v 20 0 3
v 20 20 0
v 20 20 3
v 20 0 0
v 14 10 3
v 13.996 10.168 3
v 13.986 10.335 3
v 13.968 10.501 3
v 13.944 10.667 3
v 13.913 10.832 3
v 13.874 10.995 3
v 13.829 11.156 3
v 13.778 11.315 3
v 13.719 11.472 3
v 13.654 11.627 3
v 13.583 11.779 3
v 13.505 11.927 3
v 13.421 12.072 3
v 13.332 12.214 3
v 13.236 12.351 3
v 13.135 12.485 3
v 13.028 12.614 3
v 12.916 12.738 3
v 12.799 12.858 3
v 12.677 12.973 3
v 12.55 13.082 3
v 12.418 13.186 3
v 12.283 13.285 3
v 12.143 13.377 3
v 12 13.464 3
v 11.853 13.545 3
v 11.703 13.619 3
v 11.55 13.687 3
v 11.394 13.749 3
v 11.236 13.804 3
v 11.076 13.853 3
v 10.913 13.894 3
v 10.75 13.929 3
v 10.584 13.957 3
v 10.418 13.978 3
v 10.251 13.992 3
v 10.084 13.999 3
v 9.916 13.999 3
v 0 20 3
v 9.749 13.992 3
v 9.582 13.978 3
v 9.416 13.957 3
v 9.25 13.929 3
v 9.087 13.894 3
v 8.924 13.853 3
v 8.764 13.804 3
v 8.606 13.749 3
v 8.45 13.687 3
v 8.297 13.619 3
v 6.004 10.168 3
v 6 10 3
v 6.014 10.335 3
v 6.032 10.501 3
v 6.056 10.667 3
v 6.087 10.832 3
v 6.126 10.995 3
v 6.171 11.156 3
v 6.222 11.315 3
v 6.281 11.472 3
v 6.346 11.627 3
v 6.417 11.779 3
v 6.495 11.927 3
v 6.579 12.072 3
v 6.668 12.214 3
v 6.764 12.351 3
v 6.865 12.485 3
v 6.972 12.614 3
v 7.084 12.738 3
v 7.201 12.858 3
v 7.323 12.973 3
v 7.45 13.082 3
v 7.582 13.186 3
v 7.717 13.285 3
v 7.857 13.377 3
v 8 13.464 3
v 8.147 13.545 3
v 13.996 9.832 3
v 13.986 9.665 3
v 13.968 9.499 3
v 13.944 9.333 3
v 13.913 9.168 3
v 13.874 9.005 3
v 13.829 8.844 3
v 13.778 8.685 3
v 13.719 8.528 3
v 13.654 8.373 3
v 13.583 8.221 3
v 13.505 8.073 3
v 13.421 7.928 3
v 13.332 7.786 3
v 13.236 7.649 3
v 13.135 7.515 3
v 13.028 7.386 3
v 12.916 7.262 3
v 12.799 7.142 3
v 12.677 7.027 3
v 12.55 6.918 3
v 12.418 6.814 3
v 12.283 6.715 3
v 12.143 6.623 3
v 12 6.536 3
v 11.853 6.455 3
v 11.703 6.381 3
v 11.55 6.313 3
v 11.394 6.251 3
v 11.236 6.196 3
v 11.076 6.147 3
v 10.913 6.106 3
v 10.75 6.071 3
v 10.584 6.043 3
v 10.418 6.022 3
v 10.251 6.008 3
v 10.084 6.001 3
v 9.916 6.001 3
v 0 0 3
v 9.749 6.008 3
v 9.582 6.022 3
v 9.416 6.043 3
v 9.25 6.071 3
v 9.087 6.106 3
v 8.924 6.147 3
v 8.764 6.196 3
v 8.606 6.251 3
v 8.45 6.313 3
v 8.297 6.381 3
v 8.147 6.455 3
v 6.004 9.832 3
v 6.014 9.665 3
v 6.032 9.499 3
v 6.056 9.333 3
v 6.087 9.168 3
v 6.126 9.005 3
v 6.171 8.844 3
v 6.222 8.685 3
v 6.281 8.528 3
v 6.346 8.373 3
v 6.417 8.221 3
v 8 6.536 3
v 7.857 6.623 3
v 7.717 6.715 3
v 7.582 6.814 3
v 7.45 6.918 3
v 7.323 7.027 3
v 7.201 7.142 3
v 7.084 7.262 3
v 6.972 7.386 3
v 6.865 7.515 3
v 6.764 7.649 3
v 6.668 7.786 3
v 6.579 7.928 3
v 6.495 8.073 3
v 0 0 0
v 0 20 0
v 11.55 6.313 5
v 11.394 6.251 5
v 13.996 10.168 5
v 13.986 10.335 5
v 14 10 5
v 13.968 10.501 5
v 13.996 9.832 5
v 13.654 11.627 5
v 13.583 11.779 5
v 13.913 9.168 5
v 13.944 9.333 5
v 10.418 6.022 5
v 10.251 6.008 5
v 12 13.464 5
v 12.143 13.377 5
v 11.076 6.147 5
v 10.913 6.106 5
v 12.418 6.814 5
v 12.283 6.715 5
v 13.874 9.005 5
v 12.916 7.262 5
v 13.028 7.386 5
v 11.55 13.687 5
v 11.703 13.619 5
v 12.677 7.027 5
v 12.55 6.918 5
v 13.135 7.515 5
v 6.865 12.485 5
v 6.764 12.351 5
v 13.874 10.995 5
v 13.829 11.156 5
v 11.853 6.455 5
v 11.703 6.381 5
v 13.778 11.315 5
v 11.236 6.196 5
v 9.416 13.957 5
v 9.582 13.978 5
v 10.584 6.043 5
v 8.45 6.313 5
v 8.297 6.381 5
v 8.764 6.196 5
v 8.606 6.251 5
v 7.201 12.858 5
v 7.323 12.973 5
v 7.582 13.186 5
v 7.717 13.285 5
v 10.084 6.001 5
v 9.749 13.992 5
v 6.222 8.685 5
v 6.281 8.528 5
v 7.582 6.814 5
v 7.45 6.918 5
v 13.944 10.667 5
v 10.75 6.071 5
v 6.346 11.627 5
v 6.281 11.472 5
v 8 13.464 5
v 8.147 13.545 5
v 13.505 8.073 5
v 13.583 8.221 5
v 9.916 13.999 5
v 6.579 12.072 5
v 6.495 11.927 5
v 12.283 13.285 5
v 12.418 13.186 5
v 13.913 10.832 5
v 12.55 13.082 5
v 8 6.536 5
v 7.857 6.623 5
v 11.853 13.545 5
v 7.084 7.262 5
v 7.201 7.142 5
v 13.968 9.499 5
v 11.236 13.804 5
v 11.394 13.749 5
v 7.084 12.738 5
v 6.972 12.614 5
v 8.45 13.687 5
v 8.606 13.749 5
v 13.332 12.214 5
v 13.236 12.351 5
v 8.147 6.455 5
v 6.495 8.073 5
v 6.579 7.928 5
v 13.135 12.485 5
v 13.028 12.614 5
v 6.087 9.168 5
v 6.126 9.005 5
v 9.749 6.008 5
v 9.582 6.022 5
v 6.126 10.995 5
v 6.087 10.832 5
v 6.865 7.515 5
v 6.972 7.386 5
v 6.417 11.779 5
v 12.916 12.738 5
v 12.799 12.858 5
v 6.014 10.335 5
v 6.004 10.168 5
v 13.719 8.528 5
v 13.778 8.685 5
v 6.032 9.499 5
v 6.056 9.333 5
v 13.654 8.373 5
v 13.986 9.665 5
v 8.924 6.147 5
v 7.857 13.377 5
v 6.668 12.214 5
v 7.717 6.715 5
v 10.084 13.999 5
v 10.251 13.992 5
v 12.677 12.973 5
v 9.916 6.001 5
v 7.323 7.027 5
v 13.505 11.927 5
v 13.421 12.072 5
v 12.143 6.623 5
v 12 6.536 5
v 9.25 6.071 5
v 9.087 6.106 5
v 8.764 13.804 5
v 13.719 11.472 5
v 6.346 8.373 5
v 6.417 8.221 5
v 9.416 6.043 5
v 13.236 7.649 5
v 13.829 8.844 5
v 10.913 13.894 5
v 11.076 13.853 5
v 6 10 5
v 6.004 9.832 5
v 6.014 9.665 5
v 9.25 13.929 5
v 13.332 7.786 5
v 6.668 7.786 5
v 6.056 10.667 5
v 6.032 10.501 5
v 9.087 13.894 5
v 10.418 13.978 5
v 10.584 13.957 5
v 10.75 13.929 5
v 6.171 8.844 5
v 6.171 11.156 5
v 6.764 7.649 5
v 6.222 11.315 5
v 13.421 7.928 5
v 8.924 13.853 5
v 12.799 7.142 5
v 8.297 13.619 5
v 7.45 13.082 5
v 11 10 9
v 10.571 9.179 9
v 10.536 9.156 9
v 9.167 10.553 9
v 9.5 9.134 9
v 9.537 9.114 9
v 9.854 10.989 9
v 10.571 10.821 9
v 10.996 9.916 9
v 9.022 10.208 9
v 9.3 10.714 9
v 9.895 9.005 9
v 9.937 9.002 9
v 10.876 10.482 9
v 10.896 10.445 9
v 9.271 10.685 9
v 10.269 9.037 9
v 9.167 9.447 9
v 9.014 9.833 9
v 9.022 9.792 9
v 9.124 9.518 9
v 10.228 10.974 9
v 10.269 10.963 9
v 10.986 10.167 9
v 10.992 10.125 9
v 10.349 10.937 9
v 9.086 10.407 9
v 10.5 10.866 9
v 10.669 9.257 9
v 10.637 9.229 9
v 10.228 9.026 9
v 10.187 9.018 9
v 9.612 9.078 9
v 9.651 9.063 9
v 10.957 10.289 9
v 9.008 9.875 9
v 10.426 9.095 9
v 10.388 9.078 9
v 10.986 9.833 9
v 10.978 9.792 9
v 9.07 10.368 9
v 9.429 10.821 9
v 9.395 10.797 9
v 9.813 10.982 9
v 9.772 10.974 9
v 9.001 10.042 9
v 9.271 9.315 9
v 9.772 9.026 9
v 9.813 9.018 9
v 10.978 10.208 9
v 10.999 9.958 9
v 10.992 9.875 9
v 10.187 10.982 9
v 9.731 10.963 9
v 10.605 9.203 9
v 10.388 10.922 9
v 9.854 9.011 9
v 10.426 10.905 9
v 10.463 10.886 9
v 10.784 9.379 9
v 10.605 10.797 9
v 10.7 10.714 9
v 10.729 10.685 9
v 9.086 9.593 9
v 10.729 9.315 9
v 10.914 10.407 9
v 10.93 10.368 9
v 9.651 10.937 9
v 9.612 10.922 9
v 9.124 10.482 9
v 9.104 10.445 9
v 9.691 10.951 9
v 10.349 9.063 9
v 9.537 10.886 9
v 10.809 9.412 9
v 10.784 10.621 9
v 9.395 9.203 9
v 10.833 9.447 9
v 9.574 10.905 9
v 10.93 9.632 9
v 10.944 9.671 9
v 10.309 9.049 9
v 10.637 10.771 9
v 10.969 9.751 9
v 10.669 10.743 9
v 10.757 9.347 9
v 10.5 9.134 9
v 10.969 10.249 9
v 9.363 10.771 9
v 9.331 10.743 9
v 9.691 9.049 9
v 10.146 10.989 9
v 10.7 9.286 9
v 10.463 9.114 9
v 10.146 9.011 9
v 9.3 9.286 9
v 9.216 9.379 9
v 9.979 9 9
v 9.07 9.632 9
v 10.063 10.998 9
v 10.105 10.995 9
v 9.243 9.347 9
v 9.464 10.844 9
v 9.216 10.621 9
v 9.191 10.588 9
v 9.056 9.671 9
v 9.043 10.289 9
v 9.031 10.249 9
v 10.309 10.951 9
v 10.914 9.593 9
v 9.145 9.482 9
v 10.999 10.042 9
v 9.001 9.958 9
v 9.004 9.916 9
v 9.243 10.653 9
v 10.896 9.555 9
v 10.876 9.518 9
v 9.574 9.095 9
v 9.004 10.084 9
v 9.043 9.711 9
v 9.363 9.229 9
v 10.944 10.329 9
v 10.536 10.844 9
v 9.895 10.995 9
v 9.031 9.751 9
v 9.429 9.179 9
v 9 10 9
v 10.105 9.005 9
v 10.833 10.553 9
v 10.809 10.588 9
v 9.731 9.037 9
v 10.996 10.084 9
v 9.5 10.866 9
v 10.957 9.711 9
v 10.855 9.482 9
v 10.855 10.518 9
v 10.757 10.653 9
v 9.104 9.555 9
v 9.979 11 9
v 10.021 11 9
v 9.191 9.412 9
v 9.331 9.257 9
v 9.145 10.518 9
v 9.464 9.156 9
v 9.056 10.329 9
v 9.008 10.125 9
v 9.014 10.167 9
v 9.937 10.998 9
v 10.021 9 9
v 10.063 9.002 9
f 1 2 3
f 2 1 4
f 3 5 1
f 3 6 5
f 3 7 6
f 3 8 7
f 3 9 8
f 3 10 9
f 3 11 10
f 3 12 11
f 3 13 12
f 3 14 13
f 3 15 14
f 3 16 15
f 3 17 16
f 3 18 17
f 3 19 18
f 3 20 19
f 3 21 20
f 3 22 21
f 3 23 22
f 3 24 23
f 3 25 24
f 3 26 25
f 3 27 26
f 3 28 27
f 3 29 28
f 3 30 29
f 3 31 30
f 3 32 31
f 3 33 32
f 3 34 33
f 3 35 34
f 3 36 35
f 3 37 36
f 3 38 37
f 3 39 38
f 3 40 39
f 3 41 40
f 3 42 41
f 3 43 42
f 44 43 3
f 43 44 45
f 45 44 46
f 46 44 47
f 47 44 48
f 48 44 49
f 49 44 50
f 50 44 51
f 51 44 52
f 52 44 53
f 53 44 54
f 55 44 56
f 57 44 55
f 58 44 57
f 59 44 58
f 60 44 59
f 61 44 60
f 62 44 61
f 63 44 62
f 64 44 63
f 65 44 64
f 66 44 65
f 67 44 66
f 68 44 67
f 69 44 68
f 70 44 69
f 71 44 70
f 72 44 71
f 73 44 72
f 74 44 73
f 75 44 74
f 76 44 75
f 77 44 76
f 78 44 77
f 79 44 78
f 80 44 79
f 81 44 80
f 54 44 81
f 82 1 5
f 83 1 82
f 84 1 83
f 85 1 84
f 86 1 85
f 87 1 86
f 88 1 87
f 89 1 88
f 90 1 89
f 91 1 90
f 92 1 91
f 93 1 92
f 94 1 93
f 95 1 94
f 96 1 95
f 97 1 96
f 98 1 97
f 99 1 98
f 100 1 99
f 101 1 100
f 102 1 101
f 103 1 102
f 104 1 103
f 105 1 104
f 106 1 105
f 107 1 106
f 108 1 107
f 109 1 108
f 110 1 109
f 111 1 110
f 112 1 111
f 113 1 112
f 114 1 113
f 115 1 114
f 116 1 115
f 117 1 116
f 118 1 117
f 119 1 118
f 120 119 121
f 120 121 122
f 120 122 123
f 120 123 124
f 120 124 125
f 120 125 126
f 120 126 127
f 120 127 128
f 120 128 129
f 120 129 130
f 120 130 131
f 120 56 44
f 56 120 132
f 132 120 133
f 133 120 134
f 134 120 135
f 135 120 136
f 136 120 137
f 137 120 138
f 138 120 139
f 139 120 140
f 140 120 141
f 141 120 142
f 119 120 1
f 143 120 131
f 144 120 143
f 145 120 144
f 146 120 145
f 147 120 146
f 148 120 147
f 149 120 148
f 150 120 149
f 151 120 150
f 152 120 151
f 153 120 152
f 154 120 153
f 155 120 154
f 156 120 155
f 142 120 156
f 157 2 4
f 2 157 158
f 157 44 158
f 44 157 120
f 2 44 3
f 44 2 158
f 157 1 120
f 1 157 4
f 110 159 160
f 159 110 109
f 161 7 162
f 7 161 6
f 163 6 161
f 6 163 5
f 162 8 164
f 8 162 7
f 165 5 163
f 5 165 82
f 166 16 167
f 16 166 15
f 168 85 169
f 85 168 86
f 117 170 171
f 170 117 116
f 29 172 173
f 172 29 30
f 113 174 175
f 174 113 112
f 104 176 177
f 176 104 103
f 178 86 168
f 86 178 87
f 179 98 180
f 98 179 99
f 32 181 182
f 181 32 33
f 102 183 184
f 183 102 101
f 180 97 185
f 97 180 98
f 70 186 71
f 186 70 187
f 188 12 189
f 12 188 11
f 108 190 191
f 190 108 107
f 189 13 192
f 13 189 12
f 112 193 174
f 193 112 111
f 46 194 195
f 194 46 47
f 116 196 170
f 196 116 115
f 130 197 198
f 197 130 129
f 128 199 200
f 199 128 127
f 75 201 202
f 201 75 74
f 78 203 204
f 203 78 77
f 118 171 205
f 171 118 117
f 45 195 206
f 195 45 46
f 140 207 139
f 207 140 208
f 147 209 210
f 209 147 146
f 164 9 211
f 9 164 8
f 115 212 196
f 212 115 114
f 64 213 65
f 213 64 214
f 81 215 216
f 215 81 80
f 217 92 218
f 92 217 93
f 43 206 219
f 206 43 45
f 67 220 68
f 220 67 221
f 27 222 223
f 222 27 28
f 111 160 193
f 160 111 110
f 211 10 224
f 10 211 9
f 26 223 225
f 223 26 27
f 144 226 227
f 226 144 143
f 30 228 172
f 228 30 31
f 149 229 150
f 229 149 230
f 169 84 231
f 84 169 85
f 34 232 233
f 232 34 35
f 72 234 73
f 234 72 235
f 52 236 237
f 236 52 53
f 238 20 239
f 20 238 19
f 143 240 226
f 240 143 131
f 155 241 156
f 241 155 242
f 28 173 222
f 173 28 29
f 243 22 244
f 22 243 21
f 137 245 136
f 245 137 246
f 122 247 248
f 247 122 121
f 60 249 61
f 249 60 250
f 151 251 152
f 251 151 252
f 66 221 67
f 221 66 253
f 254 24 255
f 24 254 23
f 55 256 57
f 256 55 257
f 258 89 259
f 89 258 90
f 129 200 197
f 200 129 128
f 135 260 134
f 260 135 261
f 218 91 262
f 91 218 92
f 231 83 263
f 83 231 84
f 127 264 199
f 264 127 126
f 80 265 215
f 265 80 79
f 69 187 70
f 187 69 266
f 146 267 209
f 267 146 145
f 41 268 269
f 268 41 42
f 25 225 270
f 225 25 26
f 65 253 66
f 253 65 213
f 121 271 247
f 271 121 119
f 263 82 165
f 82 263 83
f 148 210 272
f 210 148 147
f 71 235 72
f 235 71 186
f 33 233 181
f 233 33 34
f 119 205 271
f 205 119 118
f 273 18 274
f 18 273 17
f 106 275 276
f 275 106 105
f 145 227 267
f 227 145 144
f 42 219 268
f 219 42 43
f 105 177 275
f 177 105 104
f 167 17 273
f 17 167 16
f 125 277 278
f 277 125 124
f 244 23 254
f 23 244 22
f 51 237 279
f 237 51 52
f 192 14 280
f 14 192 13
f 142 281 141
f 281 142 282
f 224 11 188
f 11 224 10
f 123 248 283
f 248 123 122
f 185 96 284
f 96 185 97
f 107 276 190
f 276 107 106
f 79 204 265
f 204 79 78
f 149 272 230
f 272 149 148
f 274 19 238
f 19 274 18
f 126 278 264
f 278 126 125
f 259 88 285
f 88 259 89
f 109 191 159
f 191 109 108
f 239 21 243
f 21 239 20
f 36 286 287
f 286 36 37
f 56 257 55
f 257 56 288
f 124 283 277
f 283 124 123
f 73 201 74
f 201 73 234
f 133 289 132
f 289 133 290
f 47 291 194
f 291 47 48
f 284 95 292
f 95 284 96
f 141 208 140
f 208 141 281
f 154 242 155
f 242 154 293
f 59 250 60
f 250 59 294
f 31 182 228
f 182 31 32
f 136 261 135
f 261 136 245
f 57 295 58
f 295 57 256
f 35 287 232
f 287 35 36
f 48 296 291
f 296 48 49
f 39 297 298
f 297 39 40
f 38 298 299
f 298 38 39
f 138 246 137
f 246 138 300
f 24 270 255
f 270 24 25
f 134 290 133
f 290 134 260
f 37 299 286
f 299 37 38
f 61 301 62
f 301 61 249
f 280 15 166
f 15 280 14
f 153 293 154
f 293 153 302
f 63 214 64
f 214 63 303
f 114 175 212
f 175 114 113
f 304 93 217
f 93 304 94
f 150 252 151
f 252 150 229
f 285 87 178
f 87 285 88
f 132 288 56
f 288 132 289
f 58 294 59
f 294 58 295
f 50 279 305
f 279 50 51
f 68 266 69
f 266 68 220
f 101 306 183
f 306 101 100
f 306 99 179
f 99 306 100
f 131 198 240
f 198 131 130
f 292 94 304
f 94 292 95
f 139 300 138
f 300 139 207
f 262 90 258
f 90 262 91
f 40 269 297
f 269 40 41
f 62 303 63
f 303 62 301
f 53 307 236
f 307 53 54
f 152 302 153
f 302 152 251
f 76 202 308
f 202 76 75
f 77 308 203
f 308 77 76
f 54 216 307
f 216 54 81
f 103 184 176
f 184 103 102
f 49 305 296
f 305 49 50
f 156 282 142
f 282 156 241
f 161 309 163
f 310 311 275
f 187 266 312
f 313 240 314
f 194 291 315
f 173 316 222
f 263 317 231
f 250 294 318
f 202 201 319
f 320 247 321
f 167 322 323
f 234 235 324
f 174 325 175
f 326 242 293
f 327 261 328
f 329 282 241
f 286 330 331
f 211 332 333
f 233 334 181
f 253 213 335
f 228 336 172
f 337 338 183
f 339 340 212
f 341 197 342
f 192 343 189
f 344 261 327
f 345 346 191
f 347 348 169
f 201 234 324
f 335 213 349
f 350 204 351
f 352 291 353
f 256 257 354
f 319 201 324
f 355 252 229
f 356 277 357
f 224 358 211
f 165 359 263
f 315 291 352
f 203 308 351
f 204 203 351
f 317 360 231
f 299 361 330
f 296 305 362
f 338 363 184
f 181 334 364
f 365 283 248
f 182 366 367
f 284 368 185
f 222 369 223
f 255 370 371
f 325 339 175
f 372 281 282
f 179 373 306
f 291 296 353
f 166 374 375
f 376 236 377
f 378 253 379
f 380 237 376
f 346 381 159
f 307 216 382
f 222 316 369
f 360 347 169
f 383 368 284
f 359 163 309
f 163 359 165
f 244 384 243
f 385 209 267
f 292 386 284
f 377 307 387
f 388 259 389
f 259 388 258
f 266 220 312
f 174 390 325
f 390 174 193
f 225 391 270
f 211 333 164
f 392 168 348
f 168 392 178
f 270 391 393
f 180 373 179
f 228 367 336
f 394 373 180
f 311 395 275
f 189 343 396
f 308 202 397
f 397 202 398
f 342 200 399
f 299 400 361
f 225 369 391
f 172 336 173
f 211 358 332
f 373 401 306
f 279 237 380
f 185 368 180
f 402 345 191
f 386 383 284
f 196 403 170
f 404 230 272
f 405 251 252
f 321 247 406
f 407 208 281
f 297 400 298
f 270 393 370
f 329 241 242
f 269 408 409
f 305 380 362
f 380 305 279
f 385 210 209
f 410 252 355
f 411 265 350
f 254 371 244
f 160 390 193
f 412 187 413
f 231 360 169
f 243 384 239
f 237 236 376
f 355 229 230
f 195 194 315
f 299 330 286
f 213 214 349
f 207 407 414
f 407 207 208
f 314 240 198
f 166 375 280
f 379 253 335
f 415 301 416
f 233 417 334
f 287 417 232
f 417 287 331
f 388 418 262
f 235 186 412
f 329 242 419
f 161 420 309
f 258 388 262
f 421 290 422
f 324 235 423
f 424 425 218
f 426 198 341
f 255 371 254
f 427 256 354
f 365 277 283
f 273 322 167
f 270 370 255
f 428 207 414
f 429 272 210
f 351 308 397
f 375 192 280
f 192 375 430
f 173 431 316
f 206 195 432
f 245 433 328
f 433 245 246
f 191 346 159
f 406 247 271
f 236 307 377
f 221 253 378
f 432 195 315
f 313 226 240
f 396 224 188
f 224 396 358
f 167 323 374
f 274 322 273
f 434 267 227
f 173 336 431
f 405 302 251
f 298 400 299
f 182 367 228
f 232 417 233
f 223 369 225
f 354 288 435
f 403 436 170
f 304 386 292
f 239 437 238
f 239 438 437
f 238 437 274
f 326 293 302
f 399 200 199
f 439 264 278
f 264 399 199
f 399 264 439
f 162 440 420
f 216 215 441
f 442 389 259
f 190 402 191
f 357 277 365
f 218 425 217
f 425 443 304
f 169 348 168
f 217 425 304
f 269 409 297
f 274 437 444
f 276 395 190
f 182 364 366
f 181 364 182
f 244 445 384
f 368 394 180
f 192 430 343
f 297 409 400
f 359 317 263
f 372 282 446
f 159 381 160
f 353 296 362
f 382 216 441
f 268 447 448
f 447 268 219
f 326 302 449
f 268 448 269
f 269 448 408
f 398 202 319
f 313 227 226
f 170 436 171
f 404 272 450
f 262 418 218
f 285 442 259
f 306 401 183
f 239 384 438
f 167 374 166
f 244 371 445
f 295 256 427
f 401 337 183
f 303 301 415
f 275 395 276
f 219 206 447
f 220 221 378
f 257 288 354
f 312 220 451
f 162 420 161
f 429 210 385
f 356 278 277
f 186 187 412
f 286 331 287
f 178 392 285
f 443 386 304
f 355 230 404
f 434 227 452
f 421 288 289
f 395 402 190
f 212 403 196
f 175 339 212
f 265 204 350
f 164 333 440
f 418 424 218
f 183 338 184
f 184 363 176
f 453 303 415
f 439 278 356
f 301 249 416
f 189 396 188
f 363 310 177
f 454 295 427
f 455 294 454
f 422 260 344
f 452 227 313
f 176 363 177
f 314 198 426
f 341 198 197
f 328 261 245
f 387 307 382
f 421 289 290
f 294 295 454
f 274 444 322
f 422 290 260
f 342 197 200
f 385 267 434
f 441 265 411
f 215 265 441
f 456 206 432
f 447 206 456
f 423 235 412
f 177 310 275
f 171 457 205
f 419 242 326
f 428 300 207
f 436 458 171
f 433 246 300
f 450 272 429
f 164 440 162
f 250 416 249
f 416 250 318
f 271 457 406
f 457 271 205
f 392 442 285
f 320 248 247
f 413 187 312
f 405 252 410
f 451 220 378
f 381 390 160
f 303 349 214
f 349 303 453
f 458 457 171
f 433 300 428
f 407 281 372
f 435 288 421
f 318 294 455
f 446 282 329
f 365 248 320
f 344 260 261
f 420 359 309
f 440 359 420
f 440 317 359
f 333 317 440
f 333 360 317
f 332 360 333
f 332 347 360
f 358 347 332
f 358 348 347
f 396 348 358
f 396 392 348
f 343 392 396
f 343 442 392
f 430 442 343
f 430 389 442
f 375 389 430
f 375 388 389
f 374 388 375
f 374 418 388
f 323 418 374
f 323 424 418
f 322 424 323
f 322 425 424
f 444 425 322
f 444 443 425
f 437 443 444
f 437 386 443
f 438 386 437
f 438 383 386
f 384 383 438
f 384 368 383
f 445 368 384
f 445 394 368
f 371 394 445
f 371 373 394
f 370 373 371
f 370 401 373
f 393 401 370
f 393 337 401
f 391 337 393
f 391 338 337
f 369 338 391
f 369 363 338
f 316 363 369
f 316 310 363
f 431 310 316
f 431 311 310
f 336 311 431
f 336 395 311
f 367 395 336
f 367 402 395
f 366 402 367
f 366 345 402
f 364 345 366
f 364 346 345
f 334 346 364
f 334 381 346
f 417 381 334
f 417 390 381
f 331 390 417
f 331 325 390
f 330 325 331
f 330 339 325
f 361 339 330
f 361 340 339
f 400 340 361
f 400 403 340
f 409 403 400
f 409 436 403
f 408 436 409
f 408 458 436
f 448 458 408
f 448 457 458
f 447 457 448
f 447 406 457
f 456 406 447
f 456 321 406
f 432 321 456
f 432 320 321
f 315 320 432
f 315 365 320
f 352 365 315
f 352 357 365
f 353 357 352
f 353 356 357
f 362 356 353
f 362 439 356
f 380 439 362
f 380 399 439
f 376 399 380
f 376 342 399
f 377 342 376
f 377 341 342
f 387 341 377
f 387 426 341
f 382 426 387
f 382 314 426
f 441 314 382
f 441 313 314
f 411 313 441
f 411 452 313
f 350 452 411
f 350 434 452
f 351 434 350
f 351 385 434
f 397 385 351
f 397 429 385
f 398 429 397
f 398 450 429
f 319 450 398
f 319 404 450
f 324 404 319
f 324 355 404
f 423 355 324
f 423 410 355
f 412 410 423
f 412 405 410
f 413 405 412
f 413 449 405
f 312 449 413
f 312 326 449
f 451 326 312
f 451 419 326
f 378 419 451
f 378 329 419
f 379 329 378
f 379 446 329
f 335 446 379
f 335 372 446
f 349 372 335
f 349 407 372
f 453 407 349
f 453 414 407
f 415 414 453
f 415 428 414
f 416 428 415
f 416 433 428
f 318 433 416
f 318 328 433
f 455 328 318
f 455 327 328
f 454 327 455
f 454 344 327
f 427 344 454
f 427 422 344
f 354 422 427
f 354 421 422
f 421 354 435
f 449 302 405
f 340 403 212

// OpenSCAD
$fn=150;


cube([20,20,3]);
translate([10,10,3])cylinder(2,4,4);
translate([10,10,5])cylinder(4,4,1);
